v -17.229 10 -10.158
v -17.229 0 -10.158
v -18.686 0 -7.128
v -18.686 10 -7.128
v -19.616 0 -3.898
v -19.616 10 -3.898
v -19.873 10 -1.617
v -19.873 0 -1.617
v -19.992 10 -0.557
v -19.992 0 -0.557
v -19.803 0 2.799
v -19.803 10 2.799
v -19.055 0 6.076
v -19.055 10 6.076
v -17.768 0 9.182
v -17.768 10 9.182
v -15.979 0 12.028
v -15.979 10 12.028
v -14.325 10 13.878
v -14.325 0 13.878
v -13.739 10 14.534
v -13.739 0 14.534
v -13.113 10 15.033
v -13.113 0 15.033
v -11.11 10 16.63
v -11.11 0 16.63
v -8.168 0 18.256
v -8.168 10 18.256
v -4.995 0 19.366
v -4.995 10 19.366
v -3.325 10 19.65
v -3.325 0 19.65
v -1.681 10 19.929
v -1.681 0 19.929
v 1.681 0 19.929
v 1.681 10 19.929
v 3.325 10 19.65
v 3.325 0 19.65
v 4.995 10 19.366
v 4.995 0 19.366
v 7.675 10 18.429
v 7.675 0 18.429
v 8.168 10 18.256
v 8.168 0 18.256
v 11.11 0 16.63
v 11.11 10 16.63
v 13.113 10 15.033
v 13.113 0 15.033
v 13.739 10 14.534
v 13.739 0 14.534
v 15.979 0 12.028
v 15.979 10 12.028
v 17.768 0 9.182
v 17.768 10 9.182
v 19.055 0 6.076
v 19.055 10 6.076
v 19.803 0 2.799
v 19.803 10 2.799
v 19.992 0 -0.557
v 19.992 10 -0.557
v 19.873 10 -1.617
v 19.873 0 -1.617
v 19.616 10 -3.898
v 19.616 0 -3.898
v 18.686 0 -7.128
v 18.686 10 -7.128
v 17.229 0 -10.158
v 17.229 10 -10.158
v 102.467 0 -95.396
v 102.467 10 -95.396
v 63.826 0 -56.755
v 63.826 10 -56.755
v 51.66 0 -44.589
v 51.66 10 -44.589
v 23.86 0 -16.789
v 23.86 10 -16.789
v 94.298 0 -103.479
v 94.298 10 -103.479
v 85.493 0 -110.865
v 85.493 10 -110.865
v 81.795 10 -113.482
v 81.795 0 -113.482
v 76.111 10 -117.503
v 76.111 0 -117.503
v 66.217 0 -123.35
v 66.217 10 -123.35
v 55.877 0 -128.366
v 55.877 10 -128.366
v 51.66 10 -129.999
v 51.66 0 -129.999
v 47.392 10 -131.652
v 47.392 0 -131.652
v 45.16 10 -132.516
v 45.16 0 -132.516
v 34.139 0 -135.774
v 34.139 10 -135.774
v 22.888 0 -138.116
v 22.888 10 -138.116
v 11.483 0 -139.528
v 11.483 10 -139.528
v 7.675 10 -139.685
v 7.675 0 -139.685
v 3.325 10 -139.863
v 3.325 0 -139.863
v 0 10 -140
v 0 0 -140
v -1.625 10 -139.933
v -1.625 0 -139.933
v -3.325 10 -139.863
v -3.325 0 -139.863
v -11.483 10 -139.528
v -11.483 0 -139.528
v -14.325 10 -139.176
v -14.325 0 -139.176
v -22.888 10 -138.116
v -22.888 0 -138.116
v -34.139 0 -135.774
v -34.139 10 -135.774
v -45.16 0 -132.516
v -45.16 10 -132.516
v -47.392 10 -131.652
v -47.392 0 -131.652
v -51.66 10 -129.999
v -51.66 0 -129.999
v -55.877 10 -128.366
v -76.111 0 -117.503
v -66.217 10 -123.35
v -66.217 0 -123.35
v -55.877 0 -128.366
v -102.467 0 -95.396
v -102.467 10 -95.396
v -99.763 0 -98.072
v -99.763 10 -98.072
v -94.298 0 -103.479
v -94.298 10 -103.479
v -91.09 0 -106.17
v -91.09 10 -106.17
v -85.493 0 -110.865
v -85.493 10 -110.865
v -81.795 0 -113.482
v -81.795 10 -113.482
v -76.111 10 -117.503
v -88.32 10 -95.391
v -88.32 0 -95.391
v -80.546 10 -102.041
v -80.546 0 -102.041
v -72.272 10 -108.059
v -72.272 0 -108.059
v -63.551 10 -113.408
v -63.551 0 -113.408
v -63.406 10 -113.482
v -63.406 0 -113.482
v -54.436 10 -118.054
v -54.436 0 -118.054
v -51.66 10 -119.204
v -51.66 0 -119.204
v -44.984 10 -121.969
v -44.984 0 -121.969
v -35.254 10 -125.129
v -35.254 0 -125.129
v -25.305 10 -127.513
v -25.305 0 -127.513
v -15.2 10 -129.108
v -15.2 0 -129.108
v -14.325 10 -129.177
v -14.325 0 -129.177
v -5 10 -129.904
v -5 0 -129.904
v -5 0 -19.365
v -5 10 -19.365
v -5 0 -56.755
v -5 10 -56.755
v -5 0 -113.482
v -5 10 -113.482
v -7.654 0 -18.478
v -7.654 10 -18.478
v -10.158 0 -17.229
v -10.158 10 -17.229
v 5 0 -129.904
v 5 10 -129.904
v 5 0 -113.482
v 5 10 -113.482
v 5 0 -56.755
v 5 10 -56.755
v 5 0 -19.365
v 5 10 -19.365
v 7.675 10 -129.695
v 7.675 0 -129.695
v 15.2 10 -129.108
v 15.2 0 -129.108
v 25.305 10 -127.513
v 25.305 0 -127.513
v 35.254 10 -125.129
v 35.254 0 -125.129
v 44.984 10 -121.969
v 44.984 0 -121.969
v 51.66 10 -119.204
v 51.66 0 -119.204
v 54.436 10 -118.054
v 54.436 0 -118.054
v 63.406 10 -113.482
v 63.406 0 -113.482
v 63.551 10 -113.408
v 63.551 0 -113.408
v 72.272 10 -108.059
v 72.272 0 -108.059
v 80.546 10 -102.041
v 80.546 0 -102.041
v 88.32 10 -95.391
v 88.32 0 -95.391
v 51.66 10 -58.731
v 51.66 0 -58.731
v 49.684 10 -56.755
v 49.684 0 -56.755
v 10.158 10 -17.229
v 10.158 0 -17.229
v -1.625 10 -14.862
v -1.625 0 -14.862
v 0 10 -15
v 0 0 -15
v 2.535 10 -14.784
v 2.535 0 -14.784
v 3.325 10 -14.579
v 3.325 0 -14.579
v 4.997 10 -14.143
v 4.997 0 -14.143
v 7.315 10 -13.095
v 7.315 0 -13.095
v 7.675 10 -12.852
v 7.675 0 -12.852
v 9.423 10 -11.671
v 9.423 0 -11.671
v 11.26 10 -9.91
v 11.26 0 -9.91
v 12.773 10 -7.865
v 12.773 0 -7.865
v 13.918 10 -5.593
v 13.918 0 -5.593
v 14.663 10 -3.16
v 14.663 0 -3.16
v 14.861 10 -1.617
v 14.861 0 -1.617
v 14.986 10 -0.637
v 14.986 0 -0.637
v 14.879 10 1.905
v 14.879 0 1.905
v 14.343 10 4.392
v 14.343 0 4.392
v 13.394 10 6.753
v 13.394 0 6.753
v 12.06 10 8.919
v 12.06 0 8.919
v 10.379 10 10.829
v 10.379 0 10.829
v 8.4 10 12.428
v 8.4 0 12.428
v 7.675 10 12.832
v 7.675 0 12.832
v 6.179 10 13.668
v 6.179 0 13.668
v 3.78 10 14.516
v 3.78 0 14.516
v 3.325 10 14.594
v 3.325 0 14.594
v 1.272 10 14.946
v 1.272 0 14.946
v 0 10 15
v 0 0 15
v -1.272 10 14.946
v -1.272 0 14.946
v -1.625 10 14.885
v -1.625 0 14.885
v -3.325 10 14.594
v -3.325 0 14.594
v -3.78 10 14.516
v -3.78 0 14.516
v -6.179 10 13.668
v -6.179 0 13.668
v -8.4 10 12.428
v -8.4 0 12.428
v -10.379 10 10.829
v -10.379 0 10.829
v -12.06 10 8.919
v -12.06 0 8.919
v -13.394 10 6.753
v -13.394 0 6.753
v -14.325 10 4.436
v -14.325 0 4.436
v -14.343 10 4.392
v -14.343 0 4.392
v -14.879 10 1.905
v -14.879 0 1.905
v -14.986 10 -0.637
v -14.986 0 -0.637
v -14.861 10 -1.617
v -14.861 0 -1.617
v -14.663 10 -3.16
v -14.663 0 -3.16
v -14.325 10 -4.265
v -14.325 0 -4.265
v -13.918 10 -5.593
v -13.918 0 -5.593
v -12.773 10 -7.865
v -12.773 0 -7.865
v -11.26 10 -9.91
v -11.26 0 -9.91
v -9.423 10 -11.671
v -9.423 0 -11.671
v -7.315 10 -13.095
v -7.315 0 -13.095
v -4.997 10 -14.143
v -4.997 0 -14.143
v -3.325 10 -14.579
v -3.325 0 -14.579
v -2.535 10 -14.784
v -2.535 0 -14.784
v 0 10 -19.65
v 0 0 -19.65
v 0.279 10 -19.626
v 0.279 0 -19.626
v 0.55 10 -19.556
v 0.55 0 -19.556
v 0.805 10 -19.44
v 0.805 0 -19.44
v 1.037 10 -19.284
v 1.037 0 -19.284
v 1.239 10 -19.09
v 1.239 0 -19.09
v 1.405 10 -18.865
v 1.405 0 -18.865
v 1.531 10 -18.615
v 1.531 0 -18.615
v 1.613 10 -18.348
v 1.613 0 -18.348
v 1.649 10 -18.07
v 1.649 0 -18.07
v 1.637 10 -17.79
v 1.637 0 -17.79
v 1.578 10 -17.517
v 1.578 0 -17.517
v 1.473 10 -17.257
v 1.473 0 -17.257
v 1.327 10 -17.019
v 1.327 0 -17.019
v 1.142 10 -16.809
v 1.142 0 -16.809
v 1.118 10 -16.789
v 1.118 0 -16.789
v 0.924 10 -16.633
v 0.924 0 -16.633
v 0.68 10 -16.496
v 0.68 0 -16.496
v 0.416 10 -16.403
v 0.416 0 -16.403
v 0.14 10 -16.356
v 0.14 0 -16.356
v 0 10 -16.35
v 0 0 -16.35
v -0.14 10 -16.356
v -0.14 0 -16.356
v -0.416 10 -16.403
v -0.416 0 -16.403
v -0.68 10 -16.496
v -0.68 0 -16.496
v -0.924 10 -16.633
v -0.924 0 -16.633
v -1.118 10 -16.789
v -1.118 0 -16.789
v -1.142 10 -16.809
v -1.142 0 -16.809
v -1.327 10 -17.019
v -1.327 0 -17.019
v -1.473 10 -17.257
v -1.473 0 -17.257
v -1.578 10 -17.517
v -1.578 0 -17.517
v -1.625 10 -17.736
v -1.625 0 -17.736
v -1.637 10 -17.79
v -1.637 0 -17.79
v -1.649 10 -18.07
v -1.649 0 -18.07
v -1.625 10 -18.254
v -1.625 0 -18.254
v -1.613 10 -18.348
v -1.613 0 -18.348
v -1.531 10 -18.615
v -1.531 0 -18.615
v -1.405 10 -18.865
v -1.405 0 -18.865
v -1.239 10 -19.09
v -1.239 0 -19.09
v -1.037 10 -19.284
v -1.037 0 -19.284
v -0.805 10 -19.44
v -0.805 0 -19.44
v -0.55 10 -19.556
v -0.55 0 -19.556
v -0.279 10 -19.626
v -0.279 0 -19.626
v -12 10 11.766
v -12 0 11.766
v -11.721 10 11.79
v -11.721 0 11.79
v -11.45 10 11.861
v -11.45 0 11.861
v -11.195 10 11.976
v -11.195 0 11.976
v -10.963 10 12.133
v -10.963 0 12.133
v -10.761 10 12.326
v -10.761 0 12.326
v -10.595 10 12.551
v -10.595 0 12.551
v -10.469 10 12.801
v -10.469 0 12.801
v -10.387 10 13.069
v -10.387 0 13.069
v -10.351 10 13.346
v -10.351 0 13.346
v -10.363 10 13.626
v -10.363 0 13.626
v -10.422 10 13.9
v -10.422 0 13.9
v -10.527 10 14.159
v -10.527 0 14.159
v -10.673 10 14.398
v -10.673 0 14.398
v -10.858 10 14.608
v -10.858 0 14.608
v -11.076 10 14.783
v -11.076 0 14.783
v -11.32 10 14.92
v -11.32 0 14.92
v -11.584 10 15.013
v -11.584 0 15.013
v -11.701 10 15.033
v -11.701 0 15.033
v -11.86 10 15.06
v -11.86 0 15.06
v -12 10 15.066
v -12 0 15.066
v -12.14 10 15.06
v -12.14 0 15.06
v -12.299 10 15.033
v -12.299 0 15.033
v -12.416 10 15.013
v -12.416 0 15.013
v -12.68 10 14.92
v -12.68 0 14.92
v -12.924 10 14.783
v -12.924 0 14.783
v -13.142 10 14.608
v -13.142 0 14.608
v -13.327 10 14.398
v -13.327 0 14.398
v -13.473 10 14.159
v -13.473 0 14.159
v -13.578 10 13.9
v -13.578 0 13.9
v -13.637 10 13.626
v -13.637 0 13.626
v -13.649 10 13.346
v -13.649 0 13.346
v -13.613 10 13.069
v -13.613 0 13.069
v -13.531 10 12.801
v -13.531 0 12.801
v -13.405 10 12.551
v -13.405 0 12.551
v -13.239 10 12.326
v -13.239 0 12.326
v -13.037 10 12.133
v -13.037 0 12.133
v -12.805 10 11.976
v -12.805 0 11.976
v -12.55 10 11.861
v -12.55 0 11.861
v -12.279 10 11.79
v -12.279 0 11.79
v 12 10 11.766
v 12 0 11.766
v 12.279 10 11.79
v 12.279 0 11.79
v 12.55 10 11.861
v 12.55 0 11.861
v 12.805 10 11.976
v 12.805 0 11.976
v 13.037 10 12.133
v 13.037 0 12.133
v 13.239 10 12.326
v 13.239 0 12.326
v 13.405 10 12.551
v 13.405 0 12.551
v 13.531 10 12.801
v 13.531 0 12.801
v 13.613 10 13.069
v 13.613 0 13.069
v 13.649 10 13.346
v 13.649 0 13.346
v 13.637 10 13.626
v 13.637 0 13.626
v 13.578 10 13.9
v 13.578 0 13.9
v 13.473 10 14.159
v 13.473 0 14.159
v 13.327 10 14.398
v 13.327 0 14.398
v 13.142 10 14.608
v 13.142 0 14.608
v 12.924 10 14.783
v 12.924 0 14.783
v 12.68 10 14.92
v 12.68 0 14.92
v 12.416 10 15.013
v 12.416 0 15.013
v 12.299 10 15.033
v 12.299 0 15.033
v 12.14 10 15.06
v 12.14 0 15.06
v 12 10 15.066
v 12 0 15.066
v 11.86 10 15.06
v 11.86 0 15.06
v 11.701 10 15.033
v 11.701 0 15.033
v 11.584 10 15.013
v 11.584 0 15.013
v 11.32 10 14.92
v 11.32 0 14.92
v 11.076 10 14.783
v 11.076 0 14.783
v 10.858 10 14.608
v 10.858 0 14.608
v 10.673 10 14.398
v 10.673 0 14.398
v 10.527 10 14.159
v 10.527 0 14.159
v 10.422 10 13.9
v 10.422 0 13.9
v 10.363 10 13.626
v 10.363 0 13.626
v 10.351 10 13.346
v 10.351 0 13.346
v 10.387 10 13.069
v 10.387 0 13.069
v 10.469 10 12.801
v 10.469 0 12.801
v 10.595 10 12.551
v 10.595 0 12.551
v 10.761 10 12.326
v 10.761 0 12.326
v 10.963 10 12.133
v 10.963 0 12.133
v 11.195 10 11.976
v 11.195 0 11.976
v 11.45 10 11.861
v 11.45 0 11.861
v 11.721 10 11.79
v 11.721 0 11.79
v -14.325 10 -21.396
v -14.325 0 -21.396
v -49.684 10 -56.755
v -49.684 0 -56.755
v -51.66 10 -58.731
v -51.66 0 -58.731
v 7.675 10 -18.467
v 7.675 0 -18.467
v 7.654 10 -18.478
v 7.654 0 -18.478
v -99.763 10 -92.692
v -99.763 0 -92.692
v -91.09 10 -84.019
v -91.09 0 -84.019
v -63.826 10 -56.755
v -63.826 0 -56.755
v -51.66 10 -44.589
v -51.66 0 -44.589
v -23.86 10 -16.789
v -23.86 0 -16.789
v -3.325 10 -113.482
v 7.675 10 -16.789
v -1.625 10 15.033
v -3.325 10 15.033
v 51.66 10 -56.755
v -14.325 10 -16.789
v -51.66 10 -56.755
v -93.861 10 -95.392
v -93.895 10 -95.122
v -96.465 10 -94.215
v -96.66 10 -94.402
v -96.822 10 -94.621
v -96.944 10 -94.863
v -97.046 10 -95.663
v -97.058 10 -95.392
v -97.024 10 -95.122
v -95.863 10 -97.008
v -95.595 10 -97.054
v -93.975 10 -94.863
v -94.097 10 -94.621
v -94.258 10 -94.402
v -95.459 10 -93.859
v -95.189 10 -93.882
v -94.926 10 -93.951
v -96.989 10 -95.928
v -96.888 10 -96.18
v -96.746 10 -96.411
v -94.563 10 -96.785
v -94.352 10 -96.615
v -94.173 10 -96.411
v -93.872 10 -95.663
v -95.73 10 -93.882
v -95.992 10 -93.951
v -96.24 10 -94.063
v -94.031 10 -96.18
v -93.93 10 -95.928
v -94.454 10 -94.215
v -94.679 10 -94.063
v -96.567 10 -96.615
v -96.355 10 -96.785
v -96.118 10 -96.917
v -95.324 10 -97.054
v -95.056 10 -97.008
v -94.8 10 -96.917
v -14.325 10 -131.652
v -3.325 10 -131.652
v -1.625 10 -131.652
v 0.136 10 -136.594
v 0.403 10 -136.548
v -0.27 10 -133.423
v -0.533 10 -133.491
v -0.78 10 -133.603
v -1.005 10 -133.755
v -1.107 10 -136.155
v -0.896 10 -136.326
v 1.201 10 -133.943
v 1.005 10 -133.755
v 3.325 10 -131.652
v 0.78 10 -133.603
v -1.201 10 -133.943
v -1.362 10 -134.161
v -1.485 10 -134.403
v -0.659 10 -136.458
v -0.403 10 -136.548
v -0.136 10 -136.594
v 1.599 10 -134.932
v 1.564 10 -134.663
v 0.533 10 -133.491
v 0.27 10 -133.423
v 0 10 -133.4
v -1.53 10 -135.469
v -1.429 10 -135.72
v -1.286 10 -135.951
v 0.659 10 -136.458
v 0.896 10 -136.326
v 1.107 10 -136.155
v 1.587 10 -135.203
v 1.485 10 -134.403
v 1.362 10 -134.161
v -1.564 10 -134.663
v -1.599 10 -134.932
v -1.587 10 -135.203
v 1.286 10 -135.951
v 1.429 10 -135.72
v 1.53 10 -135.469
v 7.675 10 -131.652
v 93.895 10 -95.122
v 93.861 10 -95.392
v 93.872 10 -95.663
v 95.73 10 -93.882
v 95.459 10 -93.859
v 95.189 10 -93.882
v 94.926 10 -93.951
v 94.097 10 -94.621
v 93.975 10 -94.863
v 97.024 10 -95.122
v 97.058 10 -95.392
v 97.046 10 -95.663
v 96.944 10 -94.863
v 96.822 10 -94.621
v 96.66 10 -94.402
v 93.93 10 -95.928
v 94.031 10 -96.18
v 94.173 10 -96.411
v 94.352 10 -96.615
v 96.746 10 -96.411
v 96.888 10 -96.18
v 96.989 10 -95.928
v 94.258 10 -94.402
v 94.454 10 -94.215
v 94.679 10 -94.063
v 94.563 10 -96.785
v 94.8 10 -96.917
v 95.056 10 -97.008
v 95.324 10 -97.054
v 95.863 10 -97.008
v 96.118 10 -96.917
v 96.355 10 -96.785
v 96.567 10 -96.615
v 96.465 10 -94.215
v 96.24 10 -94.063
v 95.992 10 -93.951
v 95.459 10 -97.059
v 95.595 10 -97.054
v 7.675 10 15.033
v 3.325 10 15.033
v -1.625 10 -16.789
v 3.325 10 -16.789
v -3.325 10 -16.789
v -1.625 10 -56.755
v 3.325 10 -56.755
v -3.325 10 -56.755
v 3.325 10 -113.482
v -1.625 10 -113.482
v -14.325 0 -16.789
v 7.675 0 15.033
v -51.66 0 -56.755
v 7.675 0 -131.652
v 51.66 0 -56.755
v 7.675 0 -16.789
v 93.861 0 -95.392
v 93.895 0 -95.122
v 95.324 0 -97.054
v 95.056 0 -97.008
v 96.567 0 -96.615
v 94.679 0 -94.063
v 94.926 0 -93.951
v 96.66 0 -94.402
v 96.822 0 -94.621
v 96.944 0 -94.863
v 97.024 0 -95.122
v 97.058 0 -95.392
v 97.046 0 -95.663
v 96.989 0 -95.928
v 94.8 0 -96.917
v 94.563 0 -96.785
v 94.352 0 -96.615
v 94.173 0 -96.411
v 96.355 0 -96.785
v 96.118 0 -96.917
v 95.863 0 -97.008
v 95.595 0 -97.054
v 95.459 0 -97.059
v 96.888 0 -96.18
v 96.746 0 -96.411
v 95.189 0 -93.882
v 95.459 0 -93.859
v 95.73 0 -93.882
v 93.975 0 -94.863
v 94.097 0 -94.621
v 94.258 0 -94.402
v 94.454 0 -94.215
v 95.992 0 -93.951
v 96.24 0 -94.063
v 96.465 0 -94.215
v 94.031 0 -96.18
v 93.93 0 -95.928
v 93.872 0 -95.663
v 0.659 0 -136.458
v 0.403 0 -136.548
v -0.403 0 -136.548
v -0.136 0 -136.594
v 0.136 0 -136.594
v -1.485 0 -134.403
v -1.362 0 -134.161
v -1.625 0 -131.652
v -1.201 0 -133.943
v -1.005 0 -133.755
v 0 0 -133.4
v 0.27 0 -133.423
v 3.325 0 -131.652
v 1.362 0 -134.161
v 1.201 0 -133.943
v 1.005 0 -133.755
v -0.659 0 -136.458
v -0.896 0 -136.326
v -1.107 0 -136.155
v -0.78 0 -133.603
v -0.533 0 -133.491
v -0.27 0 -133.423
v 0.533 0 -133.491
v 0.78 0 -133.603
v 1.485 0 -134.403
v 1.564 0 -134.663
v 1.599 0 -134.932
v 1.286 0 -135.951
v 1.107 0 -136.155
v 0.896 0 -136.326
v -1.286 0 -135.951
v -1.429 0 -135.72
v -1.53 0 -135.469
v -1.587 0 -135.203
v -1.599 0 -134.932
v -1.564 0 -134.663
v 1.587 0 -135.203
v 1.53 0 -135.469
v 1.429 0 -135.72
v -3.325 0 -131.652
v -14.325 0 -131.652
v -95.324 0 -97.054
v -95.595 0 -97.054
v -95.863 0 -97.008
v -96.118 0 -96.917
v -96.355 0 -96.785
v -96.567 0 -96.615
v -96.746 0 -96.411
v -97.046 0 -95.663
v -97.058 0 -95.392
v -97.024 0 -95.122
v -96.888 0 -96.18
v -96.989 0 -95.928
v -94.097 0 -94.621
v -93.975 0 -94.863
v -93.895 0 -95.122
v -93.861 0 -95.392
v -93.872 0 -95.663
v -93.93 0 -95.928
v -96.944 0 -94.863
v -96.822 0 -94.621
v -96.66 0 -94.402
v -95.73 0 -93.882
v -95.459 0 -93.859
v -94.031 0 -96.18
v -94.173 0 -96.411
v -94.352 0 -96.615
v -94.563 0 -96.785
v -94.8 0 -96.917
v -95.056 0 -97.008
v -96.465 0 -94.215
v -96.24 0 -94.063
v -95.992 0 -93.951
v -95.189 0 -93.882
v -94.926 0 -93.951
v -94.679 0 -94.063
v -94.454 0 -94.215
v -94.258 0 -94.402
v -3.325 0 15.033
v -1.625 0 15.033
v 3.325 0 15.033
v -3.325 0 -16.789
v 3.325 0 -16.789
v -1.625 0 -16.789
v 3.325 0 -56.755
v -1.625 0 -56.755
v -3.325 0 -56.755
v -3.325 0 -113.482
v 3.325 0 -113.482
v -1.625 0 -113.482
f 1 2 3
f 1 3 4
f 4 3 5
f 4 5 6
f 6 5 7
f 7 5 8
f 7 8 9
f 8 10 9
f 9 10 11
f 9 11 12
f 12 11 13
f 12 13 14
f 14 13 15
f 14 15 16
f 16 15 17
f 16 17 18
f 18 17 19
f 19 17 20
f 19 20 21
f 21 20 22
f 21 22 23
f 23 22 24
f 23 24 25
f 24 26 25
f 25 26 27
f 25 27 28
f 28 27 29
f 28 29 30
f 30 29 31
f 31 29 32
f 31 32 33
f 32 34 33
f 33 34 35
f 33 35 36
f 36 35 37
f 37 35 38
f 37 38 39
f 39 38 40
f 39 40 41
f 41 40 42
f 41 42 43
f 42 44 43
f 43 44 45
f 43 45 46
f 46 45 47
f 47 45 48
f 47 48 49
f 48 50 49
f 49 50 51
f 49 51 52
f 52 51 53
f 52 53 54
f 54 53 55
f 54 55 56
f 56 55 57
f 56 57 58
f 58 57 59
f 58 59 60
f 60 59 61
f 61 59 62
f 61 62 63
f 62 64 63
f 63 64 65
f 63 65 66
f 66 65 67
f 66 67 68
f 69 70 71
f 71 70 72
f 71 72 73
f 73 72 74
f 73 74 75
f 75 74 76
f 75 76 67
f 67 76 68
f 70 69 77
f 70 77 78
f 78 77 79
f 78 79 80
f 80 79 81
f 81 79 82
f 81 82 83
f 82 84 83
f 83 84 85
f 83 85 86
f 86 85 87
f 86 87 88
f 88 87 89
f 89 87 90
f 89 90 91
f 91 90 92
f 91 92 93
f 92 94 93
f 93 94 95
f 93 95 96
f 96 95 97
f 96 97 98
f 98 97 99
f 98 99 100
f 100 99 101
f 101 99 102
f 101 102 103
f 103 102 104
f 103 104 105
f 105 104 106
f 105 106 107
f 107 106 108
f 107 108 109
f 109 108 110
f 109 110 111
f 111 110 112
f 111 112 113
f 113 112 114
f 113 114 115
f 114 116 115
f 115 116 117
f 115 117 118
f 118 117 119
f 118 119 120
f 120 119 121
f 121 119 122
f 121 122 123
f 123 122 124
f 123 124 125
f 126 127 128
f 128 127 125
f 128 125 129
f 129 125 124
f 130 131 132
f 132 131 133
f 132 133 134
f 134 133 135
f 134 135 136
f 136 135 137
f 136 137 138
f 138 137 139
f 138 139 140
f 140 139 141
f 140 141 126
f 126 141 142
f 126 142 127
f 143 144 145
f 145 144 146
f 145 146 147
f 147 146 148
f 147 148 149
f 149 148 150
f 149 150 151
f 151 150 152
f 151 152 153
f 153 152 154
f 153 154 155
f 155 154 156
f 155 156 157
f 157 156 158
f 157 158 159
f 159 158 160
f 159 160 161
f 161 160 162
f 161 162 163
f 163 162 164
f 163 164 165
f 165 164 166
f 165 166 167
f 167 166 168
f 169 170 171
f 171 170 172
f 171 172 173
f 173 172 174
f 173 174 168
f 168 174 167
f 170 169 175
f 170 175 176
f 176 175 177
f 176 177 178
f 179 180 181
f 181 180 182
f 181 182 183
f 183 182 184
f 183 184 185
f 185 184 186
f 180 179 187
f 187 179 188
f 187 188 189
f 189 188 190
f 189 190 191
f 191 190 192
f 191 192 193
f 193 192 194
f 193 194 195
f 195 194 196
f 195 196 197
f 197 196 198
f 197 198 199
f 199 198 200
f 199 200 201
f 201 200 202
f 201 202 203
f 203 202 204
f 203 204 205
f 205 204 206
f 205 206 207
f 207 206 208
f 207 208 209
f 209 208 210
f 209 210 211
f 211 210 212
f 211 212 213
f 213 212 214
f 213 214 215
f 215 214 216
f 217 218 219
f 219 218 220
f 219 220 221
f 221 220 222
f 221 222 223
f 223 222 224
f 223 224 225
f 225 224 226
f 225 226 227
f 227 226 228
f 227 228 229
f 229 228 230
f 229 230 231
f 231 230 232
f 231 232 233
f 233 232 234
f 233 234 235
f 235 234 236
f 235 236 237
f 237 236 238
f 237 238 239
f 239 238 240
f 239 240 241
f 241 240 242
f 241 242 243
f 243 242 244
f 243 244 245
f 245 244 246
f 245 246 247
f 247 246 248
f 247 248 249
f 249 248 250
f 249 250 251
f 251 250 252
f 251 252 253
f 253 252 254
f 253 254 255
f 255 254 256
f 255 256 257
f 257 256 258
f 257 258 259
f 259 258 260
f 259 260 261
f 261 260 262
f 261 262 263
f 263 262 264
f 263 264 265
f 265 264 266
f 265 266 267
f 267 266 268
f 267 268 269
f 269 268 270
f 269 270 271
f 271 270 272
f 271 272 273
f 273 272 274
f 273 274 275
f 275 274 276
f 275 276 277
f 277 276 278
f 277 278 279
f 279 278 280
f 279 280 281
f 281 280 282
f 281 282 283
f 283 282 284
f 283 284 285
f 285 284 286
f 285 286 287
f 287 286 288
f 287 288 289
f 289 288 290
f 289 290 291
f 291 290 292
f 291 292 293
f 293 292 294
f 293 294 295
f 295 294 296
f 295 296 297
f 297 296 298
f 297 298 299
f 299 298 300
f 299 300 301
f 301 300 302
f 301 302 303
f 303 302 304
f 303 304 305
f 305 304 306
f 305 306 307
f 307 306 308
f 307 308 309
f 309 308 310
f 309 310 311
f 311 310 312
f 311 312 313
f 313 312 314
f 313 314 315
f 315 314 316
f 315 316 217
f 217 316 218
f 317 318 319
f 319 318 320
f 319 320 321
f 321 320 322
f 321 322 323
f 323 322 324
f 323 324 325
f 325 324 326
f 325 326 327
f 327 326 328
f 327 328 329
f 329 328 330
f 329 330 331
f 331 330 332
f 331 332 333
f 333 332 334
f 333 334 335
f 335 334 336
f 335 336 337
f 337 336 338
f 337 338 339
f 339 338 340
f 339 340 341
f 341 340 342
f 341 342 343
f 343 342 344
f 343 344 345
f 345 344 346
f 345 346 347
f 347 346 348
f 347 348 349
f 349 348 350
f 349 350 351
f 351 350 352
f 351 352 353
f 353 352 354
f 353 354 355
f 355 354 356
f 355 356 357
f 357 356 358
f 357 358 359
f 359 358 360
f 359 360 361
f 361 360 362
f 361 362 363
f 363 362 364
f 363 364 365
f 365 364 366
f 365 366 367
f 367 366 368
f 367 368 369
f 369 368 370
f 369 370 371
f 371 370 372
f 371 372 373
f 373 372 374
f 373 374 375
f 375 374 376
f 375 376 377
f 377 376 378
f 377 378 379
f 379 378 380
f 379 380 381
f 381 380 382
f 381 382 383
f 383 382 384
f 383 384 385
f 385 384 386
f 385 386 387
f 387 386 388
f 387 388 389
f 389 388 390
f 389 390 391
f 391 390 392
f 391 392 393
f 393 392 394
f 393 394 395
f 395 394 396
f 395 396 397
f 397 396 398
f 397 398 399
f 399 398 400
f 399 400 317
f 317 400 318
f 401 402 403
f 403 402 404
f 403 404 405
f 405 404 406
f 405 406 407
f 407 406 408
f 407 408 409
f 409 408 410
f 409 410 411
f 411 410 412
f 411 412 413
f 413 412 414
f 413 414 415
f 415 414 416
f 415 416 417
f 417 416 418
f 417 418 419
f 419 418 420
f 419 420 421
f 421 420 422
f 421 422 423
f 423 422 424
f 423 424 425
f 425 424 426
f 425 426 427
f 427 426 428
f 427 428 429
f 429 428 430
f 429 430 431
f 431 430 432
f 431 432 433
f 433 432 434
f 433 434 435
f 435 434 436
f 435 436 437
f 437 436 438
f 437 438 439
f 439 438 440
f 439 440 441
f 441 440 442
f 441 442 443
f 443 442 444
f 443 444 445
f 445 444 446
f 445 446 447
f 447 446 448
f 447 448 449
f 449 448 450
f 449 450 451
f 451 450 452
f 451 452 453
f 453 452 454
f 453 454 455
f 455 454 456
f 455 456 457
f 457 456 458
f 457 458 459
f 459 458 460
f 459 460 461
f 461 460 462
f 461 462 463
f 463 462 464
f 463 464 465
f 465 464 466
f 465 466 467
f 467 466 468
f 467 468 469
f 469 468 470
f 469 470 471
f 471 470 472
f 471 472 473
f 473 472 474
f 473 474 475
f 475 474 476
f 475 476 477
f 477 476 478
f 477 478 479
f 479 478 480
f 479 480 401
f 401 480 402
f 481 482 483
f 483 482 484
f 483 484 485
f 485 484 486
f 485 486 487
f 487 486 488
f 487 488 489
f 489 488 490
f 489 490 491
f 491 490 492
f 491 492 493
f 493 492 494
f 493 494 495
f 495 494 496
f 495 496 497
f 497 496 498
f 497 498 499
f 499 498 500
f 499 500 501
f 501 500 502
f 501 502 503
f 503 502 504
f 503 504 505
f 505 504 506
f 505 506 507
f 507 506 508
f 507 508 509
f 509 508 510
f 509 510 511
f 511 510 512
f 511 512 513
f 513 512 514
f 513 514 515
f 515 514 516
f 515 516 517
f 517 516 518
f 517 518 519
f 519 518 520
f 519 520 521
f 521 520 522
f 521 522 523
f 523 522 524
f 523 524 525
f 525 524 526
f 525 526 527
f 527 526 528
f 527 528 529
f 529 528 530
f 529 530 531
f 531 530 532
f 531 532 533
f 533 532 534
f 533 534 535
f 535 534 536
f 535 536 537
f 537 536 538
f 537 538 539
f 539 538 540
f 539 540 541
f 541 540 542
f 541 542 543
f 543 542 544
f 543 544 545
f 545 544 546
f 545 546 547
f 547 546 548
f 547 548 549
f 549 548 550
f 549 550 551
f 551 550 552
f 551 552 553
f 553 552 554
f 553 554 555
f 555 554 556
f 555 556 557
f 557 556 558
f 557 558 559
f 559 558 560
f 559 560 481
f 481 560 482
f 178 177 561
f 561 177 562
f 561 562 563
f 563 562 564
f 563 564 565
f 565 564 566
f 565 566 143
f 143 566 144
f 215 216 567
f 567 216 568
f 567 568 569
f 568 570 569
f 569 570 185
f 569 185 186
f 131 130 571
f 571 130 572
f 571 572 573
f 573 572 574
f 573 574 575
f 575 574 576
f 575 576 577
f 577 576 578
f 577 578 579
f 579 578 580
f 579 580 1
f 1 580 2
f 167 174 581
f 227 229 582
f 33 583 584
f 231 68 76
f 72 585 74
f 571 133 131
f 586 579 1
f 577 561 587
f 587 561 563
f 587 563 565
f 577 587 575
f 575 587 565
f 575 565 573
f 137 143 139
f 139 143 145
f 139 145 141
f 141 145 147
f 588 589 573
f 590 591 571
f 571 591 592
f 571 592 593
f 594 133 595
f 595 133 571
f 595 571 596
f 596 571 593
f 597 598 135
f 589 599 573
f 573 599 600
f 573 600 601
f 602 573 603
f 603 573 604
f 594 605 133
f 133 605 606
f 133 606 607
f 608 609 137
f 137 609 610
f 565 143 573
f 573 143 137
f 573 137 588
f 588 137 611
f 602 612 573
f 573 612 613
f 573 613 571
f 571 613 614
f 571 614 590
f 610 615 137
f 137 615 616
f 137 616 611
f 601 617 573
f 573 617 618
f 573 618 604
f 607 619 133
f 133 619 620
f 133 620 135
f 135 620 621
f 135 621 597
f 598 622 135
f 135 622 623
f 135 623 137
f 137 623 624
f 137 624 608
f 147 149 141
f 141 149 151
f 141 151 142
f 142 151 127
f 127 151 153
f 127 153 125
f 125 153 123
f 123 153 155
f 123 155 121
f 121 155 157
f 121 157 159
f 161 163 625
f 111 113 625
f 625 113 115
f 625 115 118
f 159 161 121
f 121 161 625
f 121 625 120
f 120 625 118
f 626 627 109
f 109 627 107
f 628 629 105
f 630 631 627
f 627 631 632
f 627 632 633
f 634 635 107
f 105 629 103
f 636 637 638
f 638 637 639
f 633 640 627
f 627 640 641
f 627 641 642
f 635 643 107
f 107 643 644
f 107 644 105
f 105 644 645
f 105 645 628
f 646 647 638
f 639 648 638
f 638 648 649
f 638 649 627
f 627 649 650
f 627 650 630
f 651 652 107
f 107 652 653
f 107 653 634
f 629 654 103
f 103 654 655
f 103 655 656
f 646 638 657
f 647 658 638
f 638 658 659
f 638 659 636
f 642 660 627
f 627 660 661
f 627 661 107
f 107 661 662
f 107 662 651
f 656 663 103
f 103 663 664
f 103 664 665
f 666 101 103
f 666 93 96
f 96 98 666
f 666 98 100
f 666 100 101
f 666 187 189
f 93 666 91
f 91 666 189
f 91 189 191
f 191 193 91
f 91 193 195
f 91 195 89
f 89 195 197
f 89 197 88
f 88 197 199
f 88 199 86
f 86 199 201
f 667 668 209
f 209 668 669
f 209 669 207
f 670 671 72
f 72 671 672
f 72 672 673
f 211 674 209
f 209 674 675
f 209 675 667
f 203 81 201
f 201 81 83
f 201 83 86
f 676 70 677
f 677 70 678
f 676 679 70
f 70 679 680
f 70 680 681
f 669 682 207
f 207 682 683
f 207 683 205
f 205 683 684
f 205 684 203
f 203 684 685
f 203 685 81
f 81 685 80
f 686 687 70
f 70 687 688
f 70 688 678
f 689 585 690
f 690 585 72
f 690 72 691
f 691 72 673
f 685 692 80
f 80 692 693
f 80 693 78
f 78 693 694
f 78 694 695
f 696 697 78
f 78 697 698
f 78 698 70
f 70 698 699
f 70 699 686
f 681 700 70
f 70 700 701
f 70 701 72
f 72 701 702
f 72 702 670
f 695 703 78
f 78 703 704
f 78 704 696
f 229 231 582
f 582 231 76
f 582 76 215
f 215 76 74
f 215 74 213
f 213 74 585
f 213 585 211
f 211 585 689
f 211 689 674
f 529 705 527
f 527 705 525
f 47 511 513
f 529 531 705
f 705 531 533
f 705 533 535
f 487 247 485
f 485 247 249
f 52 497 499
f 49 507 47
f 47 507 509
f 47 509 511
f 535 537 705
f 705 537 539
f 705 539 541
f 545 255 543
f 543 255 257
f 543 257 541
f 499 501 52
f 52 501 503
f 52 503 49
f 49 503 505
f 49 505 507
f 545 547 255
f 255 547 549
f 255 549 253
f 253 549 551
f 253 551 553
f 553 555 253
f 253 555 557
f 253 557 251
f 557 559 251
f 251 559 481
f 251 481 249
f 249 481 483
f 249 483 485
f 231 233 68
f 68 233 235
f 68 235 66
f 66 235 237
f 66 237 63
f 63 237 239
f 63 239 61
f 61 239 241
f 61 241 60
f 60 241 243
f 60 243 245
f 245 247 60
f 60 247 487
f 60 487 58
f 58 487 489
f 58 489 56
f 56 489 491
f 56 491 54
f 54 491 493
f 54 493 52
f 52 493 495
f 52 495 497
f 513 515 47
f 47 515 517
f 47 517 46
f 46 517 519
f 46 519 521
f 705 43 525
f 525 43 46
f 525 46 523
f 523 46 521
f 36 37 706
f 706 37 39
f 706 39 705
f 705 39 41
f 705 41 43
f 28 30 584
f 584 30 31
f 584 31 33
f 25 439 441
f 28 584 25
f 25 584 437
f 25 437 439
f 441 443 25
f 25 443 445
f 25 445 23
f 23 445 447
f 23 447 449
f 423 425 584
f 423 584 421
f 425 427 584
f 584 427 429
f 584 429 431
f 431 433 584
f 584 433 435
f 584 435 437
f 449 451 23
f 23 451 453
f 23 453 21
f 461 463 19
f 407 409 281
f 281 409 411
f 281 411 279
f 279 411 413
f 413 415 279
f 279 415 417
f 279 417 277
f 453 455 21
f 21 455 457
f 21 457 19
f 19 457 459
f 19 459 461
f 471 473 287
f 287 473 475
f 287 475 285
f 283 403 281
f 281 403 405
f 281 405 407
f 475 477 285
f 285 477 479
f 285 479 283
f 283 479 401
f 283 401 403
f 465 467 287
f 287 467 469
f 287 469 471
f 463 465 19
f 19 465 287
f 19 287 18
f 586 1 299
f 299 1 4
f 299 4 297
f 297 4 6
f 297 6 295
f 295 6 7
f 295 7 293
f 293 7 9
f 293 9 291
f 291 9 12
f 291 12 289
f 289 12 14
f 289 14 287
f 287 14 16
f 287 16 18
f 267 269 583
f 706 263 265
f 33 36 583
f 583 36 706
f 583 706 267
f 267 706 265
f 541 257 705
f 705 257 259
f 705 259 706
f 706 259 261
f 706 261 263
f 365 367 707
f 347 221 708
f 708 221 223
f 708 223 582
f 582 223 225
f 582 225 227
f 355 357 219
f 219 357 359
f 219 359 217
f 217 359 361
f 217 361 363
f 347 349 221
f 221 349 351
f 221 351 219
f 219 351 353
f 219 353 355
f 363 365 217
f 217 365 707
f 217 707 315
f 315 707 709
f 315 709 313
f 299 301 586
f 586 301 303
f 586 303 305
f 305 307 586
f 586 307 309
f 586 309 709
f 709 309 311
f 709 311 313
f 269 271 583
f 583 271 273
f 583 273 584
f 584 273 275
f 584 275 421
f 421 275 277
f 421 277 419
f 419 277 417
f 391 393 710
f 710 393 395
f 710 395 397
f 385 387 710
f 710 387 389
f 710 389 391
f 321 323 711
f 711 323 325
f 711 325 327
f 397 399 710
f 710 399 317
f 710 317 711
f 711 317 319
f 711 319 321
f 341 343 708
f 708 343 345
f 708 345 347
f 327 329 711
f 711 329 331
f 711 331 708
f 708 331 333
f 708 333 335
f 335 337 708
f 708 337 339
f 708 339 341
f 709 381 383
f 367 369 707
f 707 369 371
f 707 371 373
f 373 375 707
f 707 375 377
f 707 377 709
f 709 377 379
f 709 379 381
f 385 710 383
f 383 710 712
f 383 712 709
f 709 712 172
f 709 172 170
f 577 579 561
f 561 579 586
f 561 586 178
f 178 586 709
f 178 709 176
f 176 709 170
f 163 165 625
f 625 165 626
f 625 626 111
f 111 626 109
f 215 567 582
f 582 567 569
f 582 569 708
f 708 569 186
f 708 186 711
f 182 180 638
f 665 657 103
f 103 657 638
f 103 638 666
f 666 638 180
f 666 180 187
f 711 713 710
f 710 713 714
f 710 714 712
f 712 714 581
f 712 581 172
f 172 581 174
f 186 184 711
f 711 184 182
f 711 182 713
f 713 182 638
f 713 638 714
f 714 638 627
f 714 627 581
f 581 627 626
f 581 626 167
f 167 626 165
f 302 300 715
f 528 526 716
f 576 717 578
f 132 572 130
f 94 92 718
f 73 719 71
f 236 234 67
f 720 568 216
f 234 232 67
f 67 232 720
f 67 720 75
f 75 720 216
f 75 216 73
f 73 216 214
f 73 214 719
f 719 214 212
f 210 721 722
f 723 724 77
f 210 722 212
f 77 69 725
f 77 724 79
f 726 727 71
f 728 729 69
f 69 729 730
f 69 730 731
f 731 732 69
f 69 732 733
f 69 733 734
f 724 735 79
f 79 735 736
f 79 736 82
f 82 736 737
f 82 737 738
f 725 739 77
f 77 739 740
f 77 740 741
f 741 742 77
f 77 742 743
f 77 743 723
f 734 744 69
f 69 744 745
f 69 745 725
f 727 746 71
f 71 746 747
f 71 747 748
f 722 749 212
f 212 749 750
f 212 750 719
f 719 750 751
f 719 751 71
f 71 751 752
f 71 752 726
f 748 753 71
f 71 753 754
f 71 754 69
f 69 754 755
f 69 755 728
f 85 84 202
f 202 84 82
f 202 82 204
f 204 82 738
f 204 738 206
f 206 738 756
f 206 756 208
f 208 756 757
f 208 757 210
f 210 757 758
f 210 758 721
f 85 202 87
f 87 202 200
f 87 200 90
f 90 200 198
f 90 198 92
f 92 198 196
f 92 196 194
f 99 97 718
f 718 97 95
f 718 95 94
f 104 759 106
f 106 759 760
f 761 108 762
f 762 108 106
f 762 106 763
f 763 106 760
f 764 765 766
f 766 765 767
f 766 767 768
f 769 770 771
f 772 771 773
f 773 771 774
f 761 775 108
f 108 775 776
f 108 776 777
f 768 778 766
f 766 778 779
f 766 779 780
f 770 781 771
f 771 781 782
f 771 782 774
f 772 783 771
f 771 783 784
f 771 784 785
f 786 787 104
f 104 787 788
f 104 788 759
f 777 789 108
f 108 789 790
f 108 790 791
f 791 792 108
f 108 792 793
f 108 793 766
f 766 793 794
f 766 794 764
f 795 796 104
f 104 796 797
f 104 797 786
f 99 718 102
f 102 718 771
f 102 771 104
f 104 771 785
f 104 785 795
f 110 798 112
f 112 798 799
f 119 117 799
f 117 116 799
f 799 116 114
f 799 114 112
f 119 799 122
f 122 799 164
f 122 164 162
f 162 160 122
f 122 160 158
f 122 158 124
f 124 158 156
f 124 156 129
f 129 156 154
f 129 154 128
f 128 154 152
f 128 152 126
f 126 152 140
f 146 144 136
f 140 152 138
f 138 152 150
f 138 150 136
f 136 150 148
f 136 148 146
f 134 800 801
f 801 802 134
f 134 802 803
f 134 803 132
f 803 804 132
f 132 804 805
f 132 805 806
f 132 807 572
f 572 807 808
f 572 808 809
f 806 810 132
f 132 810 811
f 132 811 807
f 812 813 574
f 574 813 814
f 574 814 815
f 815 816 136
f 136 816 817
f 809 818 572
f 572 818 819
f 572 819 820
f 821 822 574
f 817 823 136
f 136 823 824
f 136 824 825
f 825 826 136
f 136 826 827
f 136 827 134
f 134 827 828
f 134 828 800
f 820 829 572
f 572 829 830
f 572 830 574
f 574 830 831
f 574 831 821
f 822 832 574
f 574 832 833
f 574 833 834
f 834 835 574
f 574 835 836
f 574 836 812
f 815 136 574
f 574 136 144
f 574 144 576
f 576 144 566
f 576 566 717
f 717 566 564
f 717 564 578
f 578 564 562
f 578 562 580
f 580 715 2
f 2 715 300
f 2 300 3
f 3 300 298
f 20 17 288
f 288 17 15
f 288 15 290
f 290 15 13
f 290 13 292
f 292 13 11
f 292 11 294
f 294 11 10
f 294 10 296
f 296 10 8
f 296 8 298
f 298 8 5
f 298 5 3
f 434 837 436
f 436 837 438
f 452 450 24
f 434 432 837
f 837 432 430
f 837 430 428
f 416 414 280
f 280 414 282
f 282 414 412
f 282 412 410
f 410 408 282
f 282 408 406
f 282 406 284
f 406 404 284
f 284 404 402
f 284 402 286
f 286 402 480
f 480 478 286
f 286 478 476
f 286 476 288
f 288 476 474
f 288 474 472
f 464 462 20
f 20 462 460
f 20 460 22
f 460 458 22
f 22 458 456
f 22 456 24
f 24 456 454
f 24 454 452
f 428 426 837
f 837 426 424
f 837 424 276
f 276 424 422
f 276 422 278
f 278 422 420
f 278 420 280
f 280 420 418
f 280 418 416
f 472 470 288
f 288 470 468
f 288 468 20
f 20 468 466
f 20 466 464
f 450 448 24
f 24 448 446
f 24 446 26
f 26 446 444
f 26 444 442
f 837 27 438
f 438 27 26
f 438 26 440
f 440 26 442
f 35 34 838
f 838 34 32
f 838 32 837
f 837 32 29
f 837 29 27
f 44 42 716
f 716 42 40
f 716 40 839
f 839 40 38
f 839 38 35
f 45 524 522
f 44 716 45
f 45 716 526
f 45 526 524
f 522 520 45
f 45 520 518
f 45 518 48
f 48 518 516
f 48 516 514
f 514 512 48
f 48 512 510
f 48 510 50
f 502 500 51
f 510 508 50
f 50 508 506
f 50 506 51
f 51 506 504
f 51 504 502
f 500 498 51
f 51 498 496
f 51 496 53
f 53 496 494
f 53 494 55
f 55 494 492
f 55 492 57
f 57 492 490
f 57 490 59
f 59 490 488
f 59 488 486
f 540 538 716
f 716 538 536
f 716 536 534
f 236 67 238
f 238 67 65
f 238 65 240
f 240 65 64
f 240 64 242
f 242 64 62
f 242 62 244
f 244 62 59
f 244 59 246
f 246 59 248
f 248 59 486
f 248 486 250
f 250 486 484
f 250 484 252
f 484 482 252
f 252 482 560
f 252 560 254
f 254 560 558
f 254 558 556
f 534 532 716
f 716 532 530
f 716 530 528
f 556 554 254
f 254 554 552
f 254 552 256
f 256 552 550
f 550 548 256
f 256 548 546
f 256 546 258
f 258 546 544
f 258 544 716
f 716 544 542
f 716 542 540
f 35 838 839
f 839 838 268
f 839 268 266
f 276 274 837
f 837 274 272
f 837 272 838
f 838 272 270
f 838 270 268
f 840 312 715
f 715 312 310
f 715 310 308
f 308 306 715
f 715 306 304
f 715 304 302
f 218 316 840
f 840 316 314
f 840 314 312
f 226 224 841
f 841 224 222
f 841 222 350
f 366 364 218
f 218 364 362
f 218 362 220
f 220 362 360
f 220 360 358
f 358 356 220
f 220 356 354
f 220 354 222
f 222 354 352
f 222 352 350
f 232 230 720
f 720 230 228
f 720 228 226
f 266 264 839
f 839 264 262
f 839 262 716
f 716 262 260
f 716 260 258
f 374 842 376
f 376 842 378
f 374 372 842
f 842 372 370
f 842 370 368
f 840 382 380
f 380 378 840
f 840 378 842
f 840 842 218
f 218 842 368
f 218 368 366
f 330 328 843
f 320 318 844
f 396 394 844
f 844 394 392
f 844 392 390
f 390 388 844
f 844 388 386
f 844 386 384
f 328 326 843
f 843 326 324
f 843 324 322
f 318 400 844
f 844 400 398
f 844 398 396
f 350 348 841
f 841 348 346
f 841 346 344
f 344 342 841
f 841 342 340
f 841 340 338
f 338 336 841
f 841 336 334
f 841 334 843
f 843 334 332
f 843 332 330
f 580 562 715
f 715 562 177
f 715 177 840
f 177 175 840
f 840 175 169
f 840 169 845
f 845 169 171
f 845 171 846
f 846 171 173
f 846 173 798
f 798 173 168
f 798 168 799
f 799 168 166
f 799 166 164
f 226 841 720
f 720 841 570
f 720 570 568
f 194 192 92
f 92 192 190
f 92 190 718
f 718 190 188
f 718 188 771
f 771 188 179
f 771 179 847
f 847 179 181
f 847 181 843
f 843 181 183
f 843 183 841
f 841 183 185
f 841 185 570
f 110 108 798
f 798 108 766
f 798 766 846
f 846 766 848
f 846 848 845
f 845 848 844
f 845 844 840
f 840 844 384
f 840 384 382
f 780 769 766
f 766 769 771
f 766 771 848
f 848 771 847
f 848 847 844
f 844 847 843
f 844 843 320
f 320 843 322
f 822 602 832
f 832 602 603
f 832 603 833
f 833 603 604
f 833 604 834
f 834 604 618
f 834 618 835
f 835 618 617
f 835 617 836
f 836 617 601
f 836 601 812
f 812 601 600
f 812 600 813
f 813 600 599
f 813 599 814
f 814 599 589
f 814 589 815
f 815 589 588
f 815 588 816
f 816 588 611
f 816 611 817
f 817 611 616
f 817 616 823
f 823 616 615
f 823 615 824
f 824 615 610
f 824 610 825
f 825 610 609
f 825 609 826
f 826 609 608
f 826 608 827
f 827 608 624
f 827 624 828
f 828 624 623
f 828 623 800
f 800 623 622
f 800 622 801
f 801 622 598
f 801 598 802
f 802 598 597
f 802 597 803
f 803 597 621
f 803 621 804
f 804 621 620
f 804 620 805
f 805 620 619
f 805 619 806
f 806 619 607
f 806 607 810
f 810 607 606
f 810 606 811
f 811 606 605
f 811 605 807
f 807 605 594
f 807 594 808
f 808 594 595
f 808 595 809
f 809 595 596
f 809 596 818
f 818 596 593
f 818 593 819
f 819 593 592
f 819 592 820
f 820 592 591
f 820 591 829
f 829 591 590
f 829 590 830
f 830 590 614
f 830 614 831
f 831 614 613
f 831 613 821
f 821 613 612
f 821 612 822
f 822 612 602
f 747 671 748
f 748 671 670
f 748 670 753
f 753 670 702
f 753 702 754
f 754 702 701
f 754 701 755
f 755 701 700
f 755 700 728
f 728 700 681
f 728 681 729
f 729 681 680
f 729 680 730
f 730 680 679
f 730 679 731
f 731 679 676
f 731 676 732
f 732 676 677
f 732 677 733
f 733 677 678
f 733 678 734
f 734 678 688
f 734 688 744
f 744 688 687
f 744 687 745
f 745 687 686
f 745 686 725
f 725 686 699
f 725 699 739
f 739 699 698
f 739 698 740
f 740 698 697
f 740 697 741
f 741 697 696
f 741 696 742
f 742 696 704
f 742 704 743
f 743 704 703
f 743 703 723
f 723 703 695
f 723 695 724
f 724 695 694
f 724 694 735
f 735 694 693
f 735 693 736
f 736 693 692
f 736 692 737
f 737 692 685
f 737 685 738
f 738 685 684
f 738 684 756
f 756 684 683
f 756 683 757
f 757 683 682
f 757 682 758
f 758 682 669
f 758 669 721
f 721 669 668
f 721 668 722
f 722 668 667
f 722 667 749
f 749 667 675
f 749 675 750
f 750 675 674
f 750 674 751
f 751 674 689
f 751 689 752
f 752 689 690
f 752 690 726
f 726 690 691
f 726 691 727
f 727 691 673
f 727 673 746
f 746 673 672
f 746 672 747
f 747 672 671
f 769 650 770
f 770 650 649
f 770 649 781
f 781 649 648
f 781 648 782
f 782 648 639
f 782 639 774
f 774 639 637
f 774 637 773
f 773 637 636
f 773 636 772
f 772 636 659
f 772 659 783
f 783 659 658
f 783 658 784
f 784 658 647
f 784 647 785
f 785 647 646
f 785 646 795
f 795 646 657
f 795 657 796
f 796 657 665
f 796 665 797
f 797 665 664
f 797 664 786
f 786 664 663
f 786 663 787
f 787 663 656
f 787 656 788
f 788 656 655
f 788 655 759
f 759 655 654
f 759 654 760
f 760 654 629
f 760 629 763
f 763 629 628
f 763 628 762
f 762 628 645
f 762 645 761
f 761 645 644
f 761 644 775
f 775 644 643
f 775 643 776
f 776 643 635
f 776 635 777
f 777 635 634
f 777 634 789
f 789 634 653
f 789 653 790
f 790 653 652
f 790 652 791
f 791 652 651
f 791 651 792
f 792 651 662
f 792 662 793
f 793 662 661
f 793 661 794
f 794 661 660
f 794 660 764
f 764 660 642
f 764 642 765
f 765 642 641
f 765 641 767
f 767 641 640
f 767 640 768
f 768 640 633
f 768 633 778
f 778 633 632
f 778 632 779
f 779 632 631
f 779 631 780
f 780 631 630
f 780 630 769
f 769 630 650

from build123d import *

# Parameters (mm, degrees)
SKETCH_1_R          = 1.65
SKETCH_1_R_2        = 15
EXTRUDE_2_DEPTH     = 10
SKETCH_2_R          = 1.6
CUT_EXTRUDE_1_DEPTH = 11


with BuildPart() as part:
    # 草圖1 → 填料-伸長2 (new body)
    with BuildSketch(Plane(origin=(0, 0, 0), x_dir=(1, 0, 0), z_dir=(0, 1, 0))):
        with BuildLine():
            ThreePointArc((-17.228597844, 10.157530032), (0, -20), (17.228597844, 10.157530032))
            Line((17.228597844, 10.157530032), (102.467328593, 95.396260781))
            ThreePointArc((102.467328593, 95.396260781), (0, 140), (-102.467328593, 95.396260781))
            Line((-102.467328593, 95.396260781), (-17.228597844, 10.157530032))
        make_face()
        with Locations((-12, -13.416407865)):
            Circle(SKETCH_1_R, mode=Mode.SUBTRACT)
        Circle(SKETCH_1_R_2, mode=Mode.SUBTRACT)
        with Locations((0, 18)):
            Circle(SKETCH_1_R, mode=Mode.SUBTRACT)
        with Locations((12, -13.416407865)):
            Circle(SKETCH_1_R, mode=Mode.SUBTRACT)
        with BuildLine():
            ThreePointArc((-88.320331448, 95.39139926), (-49.748846207, 120.104339226), (-5, 129.903810568))
            Line((-5, 129.903810568), (-5, 19.364916731))
            ThreePointArc((-5, 19.364916731), (-7.653668647, 18.47759065), (-10.157530032, 17.228597844))
            Line((-10.157530032, 17.228597844), (-88.320331448, 95.39139926))
        make_face(mode=Mode.SUBTRACT)
        with BuildLine():
            Line((5, 19.364916731), (5, 129.903810568))
            ThreePointArc((5, 129.903810568), (49.748846207, 120.104339226), (88.320331448, 95.39139926))
            Line((88.320331448, 95.39139926), (10.157530032, 17.228597844))
            ThreePointArc((10.157530032, 17.228597844), (7.653668647, 18.47759065), (5, 19.364916731))
        make_face(mode=Mode.SUBTRACT)
    extrude(amount=EXTRUDE_2_DEPTH)

    # 草圖2 → 除料-伸長1 (cut, through all)
    with BuildSketch(Plane(origin=(0, 10, 0), x_dir=(1, 0, 0), z_dir=(0, 1, 0))):
        with Locations((-95.45941546, 95.45941546)):
            Circle(SKETCH_2_R)
        with Locations((0, 135)):
            Circle(SKETCH_2_R)
        with Locations((95.45941546, 95.45941546)):
            Circle(SKETCH_2_R)
    extrude(amount=-CUT_EXTRUDE_1_DEPTH, mode=Mode.SUBTRACT)


solid = part.part
